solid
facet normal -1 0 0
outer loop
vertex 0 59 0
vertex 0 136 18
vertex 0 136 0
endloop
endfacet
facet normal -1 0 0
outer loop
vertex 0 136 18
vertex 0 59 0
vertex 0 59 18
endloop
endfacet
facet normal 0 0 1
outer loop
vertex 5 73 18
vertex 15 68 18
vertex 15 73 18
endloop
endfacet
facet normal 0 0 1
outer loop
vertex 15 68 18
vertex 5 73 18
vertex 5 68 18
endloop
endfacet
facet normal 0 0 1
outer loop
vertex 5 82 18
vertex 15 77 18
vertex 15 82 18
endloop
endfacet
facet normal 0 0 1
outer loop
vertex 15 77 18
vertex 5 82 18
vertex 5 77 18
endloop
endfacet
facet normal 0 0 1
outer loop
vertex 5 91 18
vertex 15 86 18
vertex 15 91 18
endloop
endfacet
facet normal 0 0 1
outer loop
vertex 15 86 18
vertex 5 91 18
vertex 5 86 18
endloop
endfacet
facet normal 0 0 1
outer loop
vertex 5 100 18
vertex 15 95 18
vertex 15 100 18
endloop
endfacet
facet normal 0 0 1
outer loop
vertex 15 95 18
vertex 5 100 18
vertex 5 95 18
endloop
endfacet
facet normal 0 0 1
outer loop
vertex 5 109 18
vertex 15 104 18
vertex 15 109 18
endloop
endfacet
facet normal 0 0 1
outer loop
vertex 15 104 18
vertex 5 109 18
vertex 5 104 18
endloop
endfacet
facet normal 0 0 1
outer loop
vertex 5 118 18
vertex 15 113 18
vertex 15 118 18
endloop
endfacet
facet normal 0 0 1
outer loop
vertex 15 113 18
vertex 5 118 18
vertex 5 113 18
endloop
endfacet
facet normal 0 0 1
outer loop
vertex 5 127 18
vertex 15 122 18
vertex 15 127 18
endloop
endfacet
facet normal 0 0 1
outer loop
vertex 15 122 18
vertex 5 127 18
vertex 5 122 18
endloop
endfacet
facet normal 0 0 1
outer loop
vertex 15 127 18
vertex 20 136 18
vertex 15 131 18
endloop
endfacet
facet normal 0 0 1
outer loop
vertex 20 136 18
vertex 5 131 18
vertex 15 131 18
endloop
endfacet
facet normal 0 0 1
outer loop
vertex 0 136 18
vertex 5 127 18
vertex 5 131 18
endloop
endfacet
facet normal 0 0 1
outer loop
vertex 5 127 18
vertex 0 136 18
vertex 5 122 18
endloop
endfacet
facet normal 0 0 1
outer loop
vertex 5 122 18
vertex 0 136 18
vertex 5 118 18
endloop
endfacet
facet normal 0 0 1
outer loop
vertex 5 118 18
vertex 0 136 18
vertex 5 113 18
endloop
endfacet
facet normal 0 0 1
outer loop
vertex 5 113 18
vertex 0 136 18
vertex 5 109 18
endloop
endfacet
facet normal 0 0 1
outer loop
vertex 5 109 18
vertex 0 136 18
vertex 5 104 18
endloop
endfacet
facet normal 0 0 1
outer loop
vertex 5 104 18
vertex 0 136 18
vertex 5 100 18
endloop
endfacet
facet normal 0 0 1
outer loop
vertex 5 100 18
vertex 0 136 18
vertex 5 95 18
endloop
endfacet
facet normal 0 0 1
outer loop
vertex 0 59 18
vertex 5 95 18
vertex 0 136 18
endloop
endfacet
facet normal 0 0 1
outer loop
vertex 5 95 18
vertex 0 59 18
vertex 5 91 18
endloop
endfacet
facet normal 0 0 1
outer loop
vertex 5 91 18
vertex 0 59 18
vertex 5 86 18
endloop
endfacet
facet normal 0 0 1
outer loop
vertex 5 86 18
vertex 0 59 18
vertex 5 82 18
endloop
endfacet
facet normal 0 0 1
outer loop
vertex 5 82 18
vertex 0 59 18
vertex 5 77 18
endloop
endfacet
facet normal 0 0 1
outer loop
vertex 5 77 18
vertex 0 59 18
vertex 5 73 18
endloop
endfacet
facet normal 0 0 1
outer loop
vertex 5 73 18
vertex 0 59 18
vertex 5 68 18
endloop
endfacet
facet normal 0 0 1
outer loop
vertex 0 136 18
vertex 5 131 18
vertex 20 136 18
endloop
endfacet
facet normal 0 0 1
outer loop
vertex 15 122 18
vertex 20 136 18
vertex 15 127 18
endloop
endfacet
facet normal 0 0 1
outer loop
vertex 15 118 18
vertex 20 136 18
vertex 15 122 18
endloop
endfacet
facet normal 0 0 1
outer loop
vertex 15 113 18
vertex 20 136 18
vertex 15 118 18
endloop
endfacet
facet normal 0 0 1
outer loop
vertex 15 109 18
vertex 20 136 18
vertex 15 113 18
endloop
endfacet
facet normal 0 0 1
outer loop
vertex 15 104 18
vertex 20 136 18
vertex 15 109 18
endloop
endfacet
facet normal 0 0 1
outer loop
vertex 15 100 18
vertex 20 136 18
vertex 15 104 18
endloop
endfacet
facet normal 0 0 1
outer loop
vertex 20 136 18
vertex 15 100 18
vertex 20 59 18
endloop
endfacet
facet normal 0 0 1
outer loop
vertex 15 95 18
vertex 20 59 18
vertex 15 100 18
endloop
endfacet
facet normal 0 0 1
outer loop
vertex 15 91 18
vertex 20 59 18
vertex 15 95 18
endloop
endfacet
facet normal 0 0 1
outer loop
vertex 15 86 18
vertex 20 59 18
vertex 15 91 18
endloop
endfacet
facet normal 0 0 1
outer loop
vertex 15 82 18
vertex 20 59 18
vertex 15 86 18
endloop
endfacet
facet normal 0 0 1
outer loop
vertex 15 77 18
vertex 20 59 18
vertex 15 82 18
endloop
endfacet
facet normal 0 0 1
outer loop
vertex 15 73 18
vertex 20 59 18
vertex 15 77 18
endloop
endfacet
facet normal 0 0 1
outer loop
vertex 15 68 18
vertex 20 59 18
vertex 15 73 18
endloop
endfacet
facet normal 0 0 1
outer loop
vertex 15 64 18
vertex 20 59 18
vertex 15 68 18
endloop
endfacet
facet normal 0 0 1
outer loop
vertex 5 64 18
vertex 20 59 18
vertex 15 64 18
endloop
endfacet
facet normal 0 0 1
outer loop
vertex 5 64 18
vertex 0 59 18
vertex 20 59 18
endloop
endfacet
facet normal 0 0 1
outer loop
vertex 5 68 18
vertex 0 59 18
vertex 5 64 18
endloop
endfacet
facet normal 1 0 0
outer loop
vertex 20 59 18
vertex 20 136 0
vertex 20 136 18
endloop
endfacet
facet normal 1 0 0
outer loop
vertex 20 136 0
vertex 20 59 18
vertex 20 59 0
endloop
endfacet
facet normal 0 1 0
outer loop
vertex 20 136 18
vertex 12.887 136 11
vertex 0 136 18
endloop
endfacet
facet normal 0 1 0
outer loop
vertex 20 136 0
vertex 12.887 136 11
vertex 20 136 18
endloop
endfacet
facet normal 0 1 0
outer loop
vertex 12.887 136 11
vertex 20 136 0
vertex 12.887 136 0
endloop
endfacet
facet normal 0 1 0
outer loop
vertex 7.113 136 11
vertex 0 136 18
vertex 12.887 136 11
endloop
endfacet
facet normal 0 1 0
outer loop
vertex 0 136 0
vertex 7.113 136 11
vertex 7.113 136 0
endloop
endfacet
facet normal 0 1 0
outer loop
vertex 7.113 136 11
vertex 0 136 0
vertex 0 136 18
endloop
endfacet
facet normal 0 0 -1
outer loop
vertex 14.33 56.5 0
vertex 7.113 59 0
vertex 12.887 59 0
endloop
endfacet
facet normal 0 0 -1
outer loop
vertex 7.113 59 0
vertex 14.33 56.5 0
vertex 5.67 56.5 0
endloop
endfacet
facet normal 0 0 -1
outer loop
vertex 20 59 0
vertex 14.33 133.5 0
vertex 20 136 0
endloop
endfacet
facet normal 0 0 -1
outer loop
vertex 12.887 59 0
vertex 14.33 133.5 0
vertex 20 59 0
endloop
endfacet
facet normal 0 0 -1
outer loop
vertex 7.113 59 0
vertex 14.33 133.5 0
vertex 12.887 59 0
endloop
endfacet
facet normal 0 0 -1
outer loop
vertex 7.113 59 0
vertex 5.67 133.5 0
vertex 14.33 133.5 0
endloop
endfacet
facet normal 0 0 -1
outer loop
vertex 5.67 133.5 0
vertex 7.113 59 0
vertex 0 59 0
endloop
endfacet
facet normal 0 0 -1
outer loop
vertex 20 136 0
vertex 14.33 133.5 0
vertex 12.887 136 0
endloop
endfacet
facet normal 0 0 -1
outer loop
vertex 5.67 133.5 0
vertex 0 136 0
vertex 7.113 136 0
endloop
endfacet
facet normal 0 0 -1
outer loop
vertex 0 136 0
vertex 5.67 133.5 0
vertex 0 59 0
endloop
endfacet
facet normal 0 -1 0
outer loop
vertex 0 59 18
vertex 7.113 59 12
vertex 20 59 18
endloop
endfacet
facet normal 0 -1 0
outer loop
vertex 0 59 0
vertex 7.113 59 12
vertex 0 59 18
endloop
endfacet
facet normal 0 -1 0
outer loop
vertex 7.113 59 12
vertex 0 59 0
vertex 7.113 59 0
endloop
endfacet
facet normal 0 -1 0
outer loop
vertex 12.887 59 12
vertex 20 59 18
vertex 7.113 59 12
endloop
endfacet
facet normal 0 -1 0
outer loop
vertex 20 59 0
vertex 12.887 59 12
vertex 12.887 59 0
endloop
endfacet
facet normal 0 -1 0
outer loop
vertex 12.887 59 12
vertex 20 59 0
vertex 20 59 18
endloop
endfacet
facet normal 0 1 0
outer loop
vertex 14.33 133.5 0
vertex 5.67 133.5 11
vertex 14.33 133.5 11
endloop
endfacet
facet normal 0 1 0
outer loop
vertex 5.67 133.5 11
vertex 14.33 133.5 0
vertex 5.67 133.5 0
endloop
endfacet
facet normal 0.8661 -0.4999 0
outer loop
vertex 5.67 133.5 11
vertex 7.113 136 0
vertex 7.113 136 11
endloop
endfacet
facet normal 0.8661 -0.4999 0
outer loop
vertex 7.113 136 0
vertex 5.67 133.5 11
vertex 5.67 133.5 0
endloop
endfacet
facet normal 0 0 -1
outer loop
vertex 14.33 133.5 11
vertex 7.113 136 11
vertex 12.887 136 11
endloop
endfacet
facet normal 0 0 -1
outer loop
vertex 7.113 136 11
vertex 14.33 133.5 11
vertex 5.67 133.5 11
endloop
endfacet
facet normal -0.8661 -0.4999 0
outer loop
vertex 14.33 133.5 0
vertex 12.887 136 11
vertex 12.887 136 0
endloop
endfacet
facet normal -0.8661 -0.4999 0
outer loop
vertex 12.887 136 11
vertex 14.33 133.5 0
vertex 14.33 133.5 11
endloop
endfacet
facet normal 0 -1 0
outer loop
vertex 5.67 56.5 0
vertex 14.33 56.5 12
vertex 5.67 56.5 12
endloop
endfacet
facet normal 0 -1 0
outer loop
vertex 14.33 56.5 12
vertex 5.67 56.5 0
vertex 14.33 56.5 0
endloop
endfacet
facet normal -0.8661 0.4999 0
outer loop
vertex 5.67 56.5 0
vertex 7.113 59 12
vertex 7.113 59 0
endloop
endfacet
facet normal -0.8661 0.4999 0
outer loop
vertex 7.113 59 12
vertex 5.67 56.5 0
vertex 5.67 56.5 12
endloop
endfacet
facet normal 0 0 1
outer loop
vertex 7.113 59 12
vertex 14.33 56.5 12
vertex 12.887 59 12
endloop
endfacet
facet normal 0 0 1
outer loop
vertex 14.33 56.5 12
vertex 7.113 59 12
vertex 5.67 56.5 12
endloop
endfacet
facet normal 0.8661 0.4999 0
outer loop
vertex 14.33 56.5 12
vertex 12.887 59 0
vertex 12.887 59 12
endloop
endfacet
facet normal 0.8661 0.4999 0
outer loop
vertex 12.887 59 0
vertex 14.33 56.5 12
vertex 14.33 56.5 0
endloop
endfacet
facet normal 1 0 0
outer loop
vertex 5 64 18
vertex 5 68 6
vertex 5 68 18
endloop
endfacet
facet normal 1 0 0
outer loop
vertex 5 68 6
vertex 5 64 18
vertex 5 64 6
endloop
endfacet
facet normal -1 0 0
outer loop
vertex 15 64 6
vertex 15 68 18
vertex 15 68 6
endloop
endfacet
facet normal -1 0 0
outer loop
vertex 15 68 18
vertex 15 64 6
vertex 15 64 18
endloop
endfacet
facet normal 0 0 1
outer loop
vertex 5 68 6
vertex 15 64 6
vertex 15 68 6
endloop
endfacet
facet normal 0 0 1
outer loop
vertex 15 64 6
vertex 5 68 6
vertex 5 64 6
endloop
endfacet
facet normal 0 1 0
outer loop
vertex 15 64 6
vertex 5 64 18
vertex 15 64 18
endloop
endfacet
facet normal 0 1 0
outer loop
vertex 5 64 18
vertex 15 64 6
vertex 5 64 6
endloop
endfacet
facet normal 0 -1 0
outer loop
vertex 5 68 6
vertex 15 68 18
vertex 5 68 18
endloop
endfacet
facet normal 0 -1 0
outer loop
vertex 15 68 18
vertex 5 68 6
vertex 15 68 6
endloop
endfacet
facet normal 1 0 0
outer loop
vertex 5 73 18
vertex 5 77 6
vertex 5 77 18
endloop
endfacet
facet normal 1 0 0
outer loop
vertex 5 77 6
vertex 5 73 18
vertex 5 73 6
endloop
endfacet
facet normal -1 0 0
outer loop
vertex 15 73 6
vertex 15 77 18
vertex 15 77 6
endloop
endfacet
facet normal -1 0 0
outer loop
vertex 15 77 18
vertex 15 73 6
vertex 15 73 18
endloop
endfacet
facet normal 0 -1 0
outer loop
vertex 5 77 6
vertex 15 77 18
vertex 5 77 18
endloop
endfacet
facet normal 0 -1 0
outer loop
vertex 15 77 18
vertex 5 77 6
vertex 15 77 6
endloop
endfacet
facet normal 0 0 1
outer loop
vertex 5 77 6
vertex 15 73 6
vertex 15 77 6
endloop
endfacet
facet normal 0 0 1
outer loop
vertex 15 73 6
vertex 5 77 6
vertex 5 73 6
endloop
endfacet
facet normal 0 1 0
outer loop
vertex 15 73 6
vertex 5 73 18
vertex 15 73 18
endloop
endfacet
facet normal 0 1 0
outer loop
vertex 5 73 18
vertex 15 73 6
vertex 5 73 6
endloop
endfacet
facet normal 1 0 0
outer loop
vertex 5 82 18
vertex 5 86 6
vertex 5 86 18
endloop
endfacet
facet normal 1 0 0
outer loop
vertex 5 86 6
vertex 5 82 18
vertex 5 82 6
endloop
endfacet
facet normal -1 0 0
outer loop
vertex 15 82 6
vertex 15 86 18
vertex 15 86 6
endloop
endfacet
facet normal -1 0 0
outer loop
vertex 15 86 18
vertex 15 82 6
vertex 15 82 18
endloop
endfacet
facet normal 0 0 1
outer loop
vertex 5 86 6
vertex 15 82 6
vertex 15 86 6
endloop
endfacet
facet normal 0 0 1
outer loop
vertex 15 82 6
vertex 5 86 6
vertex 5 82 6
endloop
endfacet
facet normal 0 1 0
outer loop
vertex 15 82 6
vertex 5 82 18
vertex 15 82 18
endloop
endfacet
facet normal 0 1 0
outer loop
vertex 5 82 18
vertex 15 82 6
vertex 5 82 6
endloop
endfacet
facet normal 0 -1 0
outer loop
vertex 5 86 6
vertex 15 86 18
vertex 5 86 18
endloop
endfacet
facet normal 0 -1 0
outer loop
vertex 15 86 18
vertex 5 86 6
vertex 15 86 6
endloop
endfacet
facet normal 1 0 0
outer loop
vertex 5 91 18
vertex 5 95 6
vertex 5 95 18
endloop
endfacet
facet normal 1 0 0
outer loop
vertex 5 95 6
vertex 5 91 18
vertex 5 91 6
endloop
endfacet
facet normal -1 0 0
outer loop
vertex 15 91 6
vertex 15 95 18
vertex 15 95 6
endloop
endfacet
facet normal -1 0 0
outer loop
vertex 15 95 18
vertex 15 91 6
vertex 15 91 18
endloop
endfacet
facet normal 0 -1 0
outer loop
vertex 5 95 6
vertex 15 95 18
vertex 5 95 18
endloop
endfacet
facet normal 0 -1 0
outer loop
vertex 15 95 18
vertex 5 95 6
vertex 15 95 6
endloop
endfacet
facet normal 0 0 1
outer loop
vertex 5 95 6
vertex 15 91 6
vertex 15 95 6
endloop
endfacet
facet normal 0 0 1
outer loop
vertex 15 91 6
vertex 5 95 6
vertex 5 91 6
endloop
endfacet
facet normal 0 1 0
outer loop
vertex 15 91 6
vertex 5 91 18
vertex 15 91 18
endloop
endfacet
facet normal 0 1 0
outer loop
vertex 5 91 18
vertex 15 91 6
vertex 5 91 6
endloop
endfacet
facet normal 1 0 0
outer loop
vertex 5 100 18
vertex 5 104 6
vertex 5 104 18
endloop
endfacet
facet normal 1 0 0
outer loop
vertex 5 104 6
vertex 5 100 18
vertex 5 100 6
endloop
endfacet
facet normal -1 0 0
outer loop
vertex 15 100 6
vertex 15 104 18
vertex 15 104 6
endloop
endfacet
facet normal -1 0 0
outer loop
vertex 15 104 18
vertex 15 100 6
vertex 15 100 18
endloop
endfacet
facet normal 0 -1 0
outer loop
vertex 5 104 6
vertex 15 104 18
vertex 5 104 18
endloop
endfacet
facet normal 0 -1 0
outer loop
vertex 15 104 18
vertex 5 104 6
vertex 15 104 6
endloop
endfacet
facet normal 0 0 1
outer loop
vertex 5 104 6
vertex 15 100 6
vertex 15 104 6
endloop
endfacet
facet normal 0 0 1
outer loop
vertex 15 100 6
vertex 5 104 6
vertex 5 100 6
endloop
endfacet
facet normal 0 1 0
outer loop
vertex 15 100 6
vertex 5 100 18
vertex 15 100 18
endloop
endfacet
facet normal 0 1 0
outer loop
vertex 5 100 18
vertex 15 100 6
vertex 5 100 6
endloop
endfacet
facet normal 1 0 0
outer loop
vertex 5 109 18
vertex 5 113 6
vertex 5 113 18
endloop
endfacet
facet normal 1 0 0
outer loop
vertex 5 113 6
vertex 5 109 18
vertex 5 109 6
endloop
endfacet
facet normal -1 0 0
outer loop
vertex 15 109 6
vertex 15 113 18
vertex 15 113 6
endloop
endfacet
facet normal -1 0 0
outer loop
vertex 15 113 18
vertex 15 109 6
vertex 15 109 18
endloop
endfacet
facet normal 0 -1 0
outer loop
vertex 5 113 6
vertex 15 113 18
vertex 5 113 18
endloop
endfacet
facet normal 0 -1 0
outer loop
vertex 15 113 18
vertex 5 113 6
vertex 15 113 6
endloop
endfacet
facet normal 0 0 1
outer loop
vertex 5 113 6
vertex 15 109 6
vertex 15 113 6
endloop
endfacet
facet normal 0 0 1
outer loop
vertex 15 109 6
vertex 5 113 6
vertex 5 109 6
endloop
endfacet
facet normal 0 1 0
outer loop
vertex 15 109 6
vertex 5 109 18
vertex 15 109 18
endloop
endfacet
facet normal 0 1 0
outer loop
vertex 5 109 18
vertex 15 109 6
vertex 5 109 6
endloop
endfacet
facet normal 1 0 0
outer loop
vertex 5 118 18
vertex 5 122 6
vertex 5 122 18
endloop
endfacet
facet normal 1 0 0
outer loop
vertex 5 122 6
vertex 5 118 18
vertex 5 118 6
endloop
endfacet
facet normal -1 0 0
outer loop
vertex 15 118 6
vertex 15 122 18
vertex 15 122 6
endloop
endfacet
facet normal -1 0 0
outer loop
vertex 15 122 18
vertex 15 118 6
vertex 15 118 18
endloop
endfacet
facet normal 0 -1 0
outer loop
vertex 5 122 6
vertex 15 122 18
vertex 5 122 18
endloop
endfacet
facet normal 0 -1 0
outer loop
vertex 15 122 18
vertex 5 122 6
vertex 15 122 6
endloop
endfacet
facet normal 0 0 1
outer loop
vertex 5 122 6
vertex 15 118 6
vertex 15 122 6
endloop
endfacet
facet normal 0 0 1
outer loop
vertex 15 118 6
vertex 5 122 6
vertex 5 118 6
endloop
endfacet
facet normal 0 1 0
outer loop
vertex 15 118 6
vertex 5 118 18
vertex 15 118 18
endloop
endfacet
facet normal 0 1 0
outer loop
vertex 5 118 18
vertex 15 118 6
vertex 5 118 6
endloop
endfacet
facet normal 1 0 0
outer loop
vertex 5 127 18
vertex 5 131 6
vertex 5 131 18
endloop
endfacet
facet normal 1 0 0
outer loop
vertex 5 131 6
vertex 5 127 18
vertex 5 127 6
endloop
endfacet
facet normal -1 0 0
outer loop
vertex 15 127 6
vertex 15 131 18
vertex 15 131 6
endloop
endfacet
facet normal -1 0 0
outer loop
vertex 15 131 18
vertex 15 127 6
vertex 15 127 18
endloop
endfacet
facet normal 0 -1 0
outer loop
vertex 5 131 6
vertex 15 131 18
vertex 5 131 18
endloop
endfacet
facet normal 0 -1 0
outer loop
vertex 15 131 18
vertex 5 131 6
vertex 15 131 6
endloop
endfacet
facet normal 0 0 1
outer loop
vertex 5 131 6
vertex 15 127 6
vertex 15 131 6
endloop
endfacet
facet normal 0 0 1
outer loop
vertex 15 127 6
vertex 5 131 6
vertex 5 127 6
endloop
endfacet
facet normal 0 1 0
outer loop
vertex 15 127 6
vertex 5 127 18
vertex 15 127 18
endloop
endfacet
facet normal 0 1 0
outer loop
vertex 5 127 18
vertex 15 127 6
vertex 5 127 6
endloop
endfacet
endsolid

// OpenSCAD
/* 
    scalable-usb-holder is a 3D scalable usb holder model
    
    Copyright (C) 2017  jonellrz

    This program is free software: you can redistribute it and/or modify
    it under the terms of the GNU General Public License as published by
    the Free Software Foundation, either version 3 of the License, or
    (at your option) any later version.

    This program is distributed in the hope that it will be useful,
    but WITHOUT ANY WARRANTY; without even the implied warranty of
    MERCHANTABILITY or FITNESS FOR A PARTICULAR PURPOSE.  See the
    GNU General Public License for more details.

    You should have received a copy of the GNU General Public License
    along with this program.  If not, see <http://www.gnu.org/licenses/>.
*/

module base(cantidad=6) {
	altura=18;
	ancho=20;
   margen = 5;
   gordo = 4;
   largo = cantidad * gordo + ((cantidad+1) * margen);

    difference() {
        union() {
            difference() {
               cube([ancho,largo,altura]);
               translate([(ancho/2),largo,-1])
                rotate([0,0,90])
                cylinder(r=(ancho/4), h=(altura/1.5), $fn=3);
            }
            translate([(ancho/2),0,0])
                rotate([0,0,90])
                cylinder(r=(ancho/4), h=(altura/1.5), $fn=3);
        }

        //distancia = 9;
        translate([0, margen, 0])
            for (i=[0:cantidad-1]) {
              translate([(ancho/4), i*(margen+gordo), (altura/3)]) cube([(ancho/2), gordo, altura]);
            }

    }
}

color("MEDIUMTURQUOISE")
translate([0, 59, 0])
base(cantidad=8);
/*
color("SPRINGGREEN")
base(cantidad=6);

color("TOMATO")
translate([0, -32, 0])
base(cantidad=3);
*/
